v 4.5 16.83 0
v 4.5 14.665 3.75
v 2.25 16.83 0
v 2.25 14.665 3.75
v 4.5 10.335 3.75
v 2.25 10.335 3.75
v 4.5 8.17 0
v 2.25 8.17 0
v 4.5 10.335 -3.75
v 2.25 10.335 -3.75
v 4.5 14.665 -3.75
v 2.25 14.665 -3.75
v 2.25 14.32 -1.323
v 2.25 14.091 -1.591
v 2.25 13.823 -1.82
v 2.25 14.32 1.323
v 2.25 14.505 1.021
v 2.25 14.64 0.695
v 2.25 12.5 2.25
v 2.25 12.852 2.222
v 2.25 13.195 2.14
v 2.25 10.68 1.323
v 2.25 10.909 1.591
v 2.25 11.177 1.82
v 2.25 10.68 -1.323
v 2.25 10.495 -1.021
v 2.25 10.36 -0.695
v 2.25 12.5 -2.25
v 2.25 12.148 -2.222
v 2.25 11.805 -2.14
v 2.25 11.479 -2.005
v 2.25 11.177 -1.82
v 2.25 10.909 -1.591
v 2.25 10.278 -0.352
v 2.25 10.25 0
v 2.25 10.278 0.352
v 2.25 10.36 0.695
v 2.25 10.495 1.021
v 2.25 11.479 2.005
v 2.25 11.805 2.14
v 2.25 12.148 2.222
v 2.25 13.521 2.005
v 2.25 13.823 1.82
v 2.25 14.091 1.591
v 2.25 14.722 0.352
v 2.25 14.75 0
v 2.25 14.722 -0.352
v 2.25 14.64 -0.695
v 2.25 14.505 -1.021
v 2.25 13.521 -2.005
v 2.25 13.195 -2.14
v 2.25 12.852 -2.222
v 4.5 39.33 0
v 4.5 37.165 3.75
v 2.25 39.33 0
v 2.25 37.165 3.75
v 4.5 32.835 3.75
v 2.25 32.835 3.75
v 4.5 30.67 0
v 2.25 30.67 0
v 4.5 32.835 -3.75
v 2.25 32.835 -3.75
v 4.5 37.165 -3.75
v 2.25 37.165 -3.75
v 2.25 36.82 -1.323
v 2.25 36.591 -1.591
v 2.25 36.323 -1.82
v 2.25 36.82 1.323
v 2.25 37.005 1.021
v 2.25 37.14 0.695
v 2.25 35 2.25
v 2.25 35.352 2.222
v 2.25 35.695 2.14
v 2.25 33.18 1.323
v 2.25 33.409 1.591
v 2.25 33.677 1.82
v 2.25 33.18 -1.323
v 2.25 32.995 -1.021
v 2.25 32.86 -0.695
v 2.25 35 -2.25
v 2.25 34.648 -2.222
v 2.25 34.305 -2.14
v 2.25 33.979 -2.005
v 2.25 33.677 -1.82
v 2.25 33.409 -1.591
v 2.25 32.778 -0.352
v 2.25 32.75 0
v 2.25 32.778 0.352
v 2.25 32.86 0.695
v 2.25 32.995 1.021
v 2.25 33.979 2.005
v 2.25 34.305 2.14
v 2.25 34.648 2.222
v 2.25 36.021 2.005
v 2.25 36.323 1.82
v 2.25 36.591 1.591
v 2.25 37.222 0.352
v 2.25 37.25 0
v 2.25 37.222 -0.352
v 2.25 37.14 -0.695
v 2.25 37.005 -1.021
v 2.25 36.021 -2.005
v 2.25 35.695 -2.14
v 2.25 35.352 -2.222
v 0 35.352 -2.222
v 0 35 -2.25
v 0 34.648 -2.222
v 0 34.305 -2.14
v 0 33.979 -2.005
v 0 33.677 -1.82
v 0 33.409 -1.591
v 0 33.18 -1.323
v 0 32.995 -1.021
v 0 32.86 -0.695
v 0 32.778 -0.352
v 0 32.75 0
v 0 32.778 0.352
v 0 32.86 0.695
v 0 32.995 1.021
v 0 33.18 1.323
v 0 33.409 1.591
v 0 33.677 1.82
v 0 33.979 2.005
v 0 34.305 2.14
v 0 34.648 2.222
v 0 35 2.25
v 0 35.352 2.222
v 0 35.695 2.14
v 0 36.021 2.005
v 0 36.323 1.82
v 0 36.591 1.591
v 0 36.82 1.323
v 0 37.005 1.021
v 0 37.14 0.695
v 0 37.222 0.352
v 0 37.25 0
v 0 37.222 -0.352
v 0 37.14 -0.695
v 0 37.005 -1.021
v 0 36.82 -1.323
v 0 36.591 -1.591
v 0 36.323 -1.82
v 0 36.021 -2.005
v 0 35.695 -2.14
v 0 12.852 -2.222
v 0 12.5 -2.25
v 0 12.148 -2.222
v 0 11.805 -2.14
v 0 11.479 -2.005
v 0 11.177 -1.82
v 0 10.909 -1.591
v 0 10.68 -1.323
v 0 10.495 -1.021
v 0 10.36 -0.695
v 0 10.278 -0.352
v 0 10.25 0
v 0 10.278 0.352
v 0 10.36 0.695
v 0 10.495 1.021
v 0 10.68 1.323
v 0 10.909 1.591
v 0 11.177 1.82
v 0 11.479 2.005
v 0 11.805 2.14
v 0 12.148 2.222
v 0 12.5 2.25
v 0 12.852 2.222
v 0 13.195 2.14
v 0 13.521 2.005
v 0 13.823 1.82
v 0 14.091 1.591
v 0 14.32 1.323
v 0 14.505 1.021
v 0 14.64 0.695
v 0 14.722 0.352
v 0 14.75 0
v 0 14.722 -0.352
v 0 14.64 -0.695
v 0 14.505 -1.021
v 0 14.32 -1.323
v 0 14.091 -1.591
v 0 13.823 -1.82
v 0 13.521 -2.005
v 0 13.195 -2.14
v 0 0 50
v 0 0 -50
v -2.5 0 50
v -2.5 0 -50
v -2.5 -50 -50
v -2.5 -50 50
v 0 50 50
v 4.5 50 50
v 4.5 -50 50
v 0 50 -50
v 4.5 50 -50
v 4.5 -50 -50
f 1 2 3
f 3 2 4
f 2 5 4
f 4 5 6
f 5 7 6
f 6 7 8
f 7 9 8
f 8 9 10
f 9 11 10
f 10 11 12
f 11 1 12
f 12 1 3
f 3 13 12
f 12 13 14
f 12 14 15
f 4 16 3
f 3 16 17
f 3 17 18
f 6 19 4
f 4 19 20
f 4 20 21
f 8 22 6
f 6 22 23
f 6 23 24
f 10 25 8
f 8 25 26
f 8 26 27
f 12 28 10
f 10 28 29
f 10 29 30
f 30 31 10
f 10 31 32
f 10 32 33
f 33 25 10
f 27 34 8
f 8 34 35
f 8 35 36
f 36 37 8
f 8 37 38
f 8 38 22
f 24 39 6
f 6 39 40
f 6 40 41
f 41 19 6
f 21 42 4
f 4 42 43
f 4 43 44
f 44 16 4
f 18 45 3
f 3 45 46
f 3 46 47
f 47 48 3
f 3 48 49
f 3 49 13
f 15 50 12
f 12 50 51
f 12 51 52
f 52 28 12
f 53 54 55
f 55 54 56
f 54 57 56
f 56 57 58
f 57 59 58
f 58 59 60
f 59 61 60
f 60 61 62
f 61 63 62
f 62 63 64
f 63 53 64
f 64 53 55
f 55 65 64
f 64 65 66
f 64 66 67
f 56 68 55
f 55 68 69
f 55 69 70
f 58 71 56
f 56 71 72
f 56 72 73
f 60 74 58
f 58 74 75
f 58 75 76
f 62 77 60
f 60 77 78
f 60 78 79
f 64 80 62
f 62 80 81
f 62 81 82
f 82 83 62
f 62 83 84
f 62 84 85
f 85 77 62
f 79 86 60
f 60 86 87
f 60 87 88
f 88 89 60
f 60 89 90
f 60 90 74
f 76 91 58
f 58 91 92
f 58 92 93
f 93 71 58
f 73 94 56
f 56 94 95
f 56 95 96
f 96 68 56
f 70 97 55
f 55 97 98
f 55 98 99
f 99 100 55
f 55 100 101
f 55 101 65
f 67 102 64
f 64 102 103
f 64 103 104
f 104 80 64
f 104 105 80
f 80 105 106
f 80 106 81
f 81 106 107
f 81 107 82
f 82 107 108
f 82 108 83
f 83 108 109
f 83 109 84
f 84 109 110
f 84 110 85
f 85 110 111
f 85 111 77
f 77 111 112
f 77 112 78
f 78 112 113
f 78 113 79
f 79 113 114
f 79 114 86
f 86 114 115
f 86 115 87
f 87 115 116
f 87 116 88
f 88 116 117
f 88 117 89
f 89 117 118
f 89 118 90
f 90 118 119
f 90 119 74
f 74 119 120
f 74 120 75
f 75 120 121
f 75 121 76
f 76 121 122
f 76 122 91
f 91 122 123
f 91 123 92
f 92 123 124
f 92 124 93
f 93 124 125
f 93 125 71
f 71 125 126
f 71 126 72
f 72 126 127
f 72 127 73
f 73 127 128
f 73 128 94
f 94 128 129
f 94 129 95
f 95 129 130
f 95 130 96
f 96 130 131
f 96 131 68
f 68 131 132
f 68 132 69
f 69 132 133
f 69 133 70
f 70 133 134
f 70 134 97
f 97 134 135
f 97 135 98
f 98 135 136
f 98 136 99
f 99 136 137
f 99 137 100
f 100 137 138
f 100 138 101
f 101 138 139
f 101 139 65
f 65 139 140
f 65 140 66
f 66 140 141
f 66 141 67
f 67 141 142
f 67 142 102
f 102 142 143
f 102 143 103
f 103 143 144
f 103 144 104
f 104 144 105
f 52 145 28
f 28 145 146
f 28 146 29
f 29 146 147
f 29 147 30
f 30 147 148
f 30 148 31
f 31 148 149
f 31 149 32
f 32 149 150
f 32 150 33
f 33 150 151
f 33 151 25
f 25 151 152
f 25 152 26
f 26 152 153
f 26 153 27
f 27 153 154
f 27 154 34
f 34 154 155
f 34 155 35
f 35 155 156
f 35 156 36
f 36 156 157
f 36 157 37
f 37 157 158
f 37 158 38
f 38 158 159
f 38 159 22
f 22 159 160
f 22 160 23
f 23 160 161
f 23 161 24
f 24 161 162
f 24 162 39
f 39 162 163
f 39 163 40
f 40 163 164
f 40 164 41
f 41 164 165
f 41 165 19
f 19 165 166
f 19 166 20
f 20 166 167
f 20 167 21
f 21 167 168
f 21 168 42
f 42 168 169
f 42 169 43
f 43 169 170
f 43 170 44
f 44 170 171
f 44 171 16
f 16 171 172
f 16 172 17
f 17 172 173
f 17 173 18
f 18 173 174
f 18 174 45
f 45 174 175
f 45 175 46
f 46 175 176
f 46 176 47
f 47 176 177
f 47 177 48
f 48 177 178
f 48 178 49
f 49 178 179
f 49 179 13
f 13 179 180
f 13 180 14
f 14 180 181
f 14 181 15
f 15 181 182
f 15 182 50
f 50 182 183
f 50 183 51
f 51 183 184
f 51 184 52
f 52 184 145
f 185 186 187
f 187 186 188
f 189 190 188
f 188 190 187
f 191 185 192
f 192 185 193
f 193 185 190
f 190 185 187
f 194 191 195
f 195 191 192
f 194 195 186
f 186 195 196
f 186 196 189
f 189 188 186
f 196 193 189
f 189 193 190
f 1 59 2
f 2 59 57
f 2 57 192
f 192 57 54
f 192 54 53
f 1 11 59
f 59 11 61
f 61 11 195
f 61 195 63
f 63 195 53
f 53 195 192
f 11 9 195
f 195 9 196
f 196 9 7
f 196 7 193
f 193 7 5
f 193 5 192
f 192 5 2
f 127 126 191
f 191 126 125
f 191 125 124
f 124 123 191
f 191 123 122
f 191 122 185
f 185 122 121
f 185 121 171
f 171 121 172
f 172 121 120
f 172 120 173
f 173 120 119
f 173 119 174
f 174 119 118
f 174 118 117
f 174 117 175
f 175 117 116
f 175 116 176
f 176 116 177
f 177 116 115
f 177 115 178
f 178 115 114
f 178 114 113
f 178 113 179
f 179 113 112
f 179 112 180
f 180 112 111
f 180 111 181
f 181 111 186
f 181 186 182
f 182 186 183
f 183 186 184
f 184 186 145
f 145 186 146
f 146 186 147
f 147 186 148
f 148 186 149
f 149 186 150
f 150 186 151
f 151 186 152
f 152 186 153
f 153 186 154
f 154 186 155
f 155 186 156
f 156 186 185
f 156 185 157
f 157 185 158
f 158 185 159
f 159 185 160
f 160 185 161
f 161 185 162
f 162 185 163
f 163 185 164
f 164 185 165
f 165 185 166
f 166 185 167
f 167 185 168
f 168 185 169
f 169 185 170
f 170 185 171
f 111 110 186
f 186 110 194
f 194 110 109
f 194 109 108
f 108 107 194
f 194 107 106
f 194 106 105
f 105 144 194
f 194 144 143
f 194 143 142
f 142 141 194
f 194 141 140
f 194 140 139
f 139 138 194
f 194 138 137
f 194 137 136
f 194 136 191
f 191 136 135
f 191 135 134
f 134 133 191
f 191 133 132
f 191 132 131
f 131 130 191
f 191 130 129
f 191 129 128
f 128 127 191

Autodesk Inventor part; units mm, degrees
ref_plane "YZ Plane" through (0, 0, 0) normal (1, 0, 0) x (0, 1, 0)
ref_plane "XZ Plane" through (0, 0, 0) normal (0, 1, 0) x (-1, 0, 0)
ref_plane "XY Plane" through (0, 0, 0) normal (0, 0, 1) x (1, 0, 0)
sketch "Sketch1" plane through (0, 0, 0) normal (1, 0, 0) x (0, 1, 0)
  line L0 (50, 50) -> (-50, 50)
  line L1 (-50, 50) -> (-50, -50)
  line L2 (-50, -50) -> (50, -50)
  line L3 (50, -50) -> (50, 50)
  point P0 (0, 0)
  point P1 (50, 0)
  point P2 (0, -50)
  dimension "d0" = 100
  dimension "d1" = 100
extrude "Extrusion1" add sketch "Sketch1" along normal blind 4.5
sketch "Sketch2" plane through (0, 0, 0) normal (-1, 0, 0) x (0, 0, 1)
  line L0 (50, -50) -> (-50, -50) projected
  line L1 (50, 50) -> (50, -50) projected
  line L2 (-50, -50) -> (50, -50)
  line L3 (50, -50) -> (50, 0)
  line L4 (50, 0) -> (-50, 0)
  line L5 (-50, 0) -> (-50, -50)
  point P0 (0, 0)
extrude "Extrusion2" add sketch "Sketch2" along normal blind 2.5
sketch "Sketch3" plane through (4.5, 0, 0) normal (1, 0, 0) x (0, 0, -1)
  line L0 (-50, -50) -> (50, -50) projected
  line L1 (50, -50) -> (50, 50) projected
  line L2 (50, 50) -> (-50, 50) projected
  line L3 (-50, 50) -> (-50, -50) projected
  point P0 (0, 0)
  point P1 (0, 35)
  point P2 (0, 12.5)
  point P3 (0, 50)
  dimension "d6" = 37.5
  dimension "d7" = 15
hole "Hole1" at (4.5, 35, 0) at (4.5, 12.5, 0) direction (-1, 0, 0) diameter 4.5 end through all
sketch "Sketch4" plane through (4.5, 0, 0) normal (1, 0, 0) x (0, 0, -1)
  circle A0 centre (0, 35) radius 2.25 projected
  circle A1 centre (0, 12.5) radius 2.25 projected
  line L0 (-50, -50) -> (50, -50) projected
  line L1 (50, -50) -> (50, 50) projected
  line L2 (50, 50) -> (-50, 50) projected
  line L3 (-50, 50) -> (-50, -50) projected
  line L4 (3.75, 10.3349) -> (0, 8.1699)
  line L5 (0, 8.1699) -> (-3.75, 10.3349)
  line L6 (-3.75, 10.3349) -> (-3.75, 14.6651)
  line L7 (-3.75, 14.6651) -> (0, 16.8301)
  line L8 (0, 16.8301) -> (3.75, 14.6651)
  line L9 (3.75, 14.6651) -> (3.75, 10.3349)
  line L10 (3.75, 32.8349) -> (0, 30.6699)
  line L11 (0, 30.6699) -> (-3.75, 32.8349)
  line L12 (-3.75, 32.8349) -> (-3.75, 37.1651)
  line L13 (-3.75, 37.1651) -> (0, 39.3301)
  line L14 (0, 39.3301) -> (3.75, 37.1651)
  line L15 (3.75, 37.1651) -> (3.75, 32.8349)
  point P0 (0, 0)
  dimension "d15" = 7.5
  dimension "d16" = 7.5
extrude "Extrusion3" cut sketch "Sketch4" against normal blind 2.25 contours L4 L5 L6 L7 L8 L9 | L10 L11 L12 L13 L14 L15
equation "\"d16\" = d15"
properties part number "wallMountBottom"
